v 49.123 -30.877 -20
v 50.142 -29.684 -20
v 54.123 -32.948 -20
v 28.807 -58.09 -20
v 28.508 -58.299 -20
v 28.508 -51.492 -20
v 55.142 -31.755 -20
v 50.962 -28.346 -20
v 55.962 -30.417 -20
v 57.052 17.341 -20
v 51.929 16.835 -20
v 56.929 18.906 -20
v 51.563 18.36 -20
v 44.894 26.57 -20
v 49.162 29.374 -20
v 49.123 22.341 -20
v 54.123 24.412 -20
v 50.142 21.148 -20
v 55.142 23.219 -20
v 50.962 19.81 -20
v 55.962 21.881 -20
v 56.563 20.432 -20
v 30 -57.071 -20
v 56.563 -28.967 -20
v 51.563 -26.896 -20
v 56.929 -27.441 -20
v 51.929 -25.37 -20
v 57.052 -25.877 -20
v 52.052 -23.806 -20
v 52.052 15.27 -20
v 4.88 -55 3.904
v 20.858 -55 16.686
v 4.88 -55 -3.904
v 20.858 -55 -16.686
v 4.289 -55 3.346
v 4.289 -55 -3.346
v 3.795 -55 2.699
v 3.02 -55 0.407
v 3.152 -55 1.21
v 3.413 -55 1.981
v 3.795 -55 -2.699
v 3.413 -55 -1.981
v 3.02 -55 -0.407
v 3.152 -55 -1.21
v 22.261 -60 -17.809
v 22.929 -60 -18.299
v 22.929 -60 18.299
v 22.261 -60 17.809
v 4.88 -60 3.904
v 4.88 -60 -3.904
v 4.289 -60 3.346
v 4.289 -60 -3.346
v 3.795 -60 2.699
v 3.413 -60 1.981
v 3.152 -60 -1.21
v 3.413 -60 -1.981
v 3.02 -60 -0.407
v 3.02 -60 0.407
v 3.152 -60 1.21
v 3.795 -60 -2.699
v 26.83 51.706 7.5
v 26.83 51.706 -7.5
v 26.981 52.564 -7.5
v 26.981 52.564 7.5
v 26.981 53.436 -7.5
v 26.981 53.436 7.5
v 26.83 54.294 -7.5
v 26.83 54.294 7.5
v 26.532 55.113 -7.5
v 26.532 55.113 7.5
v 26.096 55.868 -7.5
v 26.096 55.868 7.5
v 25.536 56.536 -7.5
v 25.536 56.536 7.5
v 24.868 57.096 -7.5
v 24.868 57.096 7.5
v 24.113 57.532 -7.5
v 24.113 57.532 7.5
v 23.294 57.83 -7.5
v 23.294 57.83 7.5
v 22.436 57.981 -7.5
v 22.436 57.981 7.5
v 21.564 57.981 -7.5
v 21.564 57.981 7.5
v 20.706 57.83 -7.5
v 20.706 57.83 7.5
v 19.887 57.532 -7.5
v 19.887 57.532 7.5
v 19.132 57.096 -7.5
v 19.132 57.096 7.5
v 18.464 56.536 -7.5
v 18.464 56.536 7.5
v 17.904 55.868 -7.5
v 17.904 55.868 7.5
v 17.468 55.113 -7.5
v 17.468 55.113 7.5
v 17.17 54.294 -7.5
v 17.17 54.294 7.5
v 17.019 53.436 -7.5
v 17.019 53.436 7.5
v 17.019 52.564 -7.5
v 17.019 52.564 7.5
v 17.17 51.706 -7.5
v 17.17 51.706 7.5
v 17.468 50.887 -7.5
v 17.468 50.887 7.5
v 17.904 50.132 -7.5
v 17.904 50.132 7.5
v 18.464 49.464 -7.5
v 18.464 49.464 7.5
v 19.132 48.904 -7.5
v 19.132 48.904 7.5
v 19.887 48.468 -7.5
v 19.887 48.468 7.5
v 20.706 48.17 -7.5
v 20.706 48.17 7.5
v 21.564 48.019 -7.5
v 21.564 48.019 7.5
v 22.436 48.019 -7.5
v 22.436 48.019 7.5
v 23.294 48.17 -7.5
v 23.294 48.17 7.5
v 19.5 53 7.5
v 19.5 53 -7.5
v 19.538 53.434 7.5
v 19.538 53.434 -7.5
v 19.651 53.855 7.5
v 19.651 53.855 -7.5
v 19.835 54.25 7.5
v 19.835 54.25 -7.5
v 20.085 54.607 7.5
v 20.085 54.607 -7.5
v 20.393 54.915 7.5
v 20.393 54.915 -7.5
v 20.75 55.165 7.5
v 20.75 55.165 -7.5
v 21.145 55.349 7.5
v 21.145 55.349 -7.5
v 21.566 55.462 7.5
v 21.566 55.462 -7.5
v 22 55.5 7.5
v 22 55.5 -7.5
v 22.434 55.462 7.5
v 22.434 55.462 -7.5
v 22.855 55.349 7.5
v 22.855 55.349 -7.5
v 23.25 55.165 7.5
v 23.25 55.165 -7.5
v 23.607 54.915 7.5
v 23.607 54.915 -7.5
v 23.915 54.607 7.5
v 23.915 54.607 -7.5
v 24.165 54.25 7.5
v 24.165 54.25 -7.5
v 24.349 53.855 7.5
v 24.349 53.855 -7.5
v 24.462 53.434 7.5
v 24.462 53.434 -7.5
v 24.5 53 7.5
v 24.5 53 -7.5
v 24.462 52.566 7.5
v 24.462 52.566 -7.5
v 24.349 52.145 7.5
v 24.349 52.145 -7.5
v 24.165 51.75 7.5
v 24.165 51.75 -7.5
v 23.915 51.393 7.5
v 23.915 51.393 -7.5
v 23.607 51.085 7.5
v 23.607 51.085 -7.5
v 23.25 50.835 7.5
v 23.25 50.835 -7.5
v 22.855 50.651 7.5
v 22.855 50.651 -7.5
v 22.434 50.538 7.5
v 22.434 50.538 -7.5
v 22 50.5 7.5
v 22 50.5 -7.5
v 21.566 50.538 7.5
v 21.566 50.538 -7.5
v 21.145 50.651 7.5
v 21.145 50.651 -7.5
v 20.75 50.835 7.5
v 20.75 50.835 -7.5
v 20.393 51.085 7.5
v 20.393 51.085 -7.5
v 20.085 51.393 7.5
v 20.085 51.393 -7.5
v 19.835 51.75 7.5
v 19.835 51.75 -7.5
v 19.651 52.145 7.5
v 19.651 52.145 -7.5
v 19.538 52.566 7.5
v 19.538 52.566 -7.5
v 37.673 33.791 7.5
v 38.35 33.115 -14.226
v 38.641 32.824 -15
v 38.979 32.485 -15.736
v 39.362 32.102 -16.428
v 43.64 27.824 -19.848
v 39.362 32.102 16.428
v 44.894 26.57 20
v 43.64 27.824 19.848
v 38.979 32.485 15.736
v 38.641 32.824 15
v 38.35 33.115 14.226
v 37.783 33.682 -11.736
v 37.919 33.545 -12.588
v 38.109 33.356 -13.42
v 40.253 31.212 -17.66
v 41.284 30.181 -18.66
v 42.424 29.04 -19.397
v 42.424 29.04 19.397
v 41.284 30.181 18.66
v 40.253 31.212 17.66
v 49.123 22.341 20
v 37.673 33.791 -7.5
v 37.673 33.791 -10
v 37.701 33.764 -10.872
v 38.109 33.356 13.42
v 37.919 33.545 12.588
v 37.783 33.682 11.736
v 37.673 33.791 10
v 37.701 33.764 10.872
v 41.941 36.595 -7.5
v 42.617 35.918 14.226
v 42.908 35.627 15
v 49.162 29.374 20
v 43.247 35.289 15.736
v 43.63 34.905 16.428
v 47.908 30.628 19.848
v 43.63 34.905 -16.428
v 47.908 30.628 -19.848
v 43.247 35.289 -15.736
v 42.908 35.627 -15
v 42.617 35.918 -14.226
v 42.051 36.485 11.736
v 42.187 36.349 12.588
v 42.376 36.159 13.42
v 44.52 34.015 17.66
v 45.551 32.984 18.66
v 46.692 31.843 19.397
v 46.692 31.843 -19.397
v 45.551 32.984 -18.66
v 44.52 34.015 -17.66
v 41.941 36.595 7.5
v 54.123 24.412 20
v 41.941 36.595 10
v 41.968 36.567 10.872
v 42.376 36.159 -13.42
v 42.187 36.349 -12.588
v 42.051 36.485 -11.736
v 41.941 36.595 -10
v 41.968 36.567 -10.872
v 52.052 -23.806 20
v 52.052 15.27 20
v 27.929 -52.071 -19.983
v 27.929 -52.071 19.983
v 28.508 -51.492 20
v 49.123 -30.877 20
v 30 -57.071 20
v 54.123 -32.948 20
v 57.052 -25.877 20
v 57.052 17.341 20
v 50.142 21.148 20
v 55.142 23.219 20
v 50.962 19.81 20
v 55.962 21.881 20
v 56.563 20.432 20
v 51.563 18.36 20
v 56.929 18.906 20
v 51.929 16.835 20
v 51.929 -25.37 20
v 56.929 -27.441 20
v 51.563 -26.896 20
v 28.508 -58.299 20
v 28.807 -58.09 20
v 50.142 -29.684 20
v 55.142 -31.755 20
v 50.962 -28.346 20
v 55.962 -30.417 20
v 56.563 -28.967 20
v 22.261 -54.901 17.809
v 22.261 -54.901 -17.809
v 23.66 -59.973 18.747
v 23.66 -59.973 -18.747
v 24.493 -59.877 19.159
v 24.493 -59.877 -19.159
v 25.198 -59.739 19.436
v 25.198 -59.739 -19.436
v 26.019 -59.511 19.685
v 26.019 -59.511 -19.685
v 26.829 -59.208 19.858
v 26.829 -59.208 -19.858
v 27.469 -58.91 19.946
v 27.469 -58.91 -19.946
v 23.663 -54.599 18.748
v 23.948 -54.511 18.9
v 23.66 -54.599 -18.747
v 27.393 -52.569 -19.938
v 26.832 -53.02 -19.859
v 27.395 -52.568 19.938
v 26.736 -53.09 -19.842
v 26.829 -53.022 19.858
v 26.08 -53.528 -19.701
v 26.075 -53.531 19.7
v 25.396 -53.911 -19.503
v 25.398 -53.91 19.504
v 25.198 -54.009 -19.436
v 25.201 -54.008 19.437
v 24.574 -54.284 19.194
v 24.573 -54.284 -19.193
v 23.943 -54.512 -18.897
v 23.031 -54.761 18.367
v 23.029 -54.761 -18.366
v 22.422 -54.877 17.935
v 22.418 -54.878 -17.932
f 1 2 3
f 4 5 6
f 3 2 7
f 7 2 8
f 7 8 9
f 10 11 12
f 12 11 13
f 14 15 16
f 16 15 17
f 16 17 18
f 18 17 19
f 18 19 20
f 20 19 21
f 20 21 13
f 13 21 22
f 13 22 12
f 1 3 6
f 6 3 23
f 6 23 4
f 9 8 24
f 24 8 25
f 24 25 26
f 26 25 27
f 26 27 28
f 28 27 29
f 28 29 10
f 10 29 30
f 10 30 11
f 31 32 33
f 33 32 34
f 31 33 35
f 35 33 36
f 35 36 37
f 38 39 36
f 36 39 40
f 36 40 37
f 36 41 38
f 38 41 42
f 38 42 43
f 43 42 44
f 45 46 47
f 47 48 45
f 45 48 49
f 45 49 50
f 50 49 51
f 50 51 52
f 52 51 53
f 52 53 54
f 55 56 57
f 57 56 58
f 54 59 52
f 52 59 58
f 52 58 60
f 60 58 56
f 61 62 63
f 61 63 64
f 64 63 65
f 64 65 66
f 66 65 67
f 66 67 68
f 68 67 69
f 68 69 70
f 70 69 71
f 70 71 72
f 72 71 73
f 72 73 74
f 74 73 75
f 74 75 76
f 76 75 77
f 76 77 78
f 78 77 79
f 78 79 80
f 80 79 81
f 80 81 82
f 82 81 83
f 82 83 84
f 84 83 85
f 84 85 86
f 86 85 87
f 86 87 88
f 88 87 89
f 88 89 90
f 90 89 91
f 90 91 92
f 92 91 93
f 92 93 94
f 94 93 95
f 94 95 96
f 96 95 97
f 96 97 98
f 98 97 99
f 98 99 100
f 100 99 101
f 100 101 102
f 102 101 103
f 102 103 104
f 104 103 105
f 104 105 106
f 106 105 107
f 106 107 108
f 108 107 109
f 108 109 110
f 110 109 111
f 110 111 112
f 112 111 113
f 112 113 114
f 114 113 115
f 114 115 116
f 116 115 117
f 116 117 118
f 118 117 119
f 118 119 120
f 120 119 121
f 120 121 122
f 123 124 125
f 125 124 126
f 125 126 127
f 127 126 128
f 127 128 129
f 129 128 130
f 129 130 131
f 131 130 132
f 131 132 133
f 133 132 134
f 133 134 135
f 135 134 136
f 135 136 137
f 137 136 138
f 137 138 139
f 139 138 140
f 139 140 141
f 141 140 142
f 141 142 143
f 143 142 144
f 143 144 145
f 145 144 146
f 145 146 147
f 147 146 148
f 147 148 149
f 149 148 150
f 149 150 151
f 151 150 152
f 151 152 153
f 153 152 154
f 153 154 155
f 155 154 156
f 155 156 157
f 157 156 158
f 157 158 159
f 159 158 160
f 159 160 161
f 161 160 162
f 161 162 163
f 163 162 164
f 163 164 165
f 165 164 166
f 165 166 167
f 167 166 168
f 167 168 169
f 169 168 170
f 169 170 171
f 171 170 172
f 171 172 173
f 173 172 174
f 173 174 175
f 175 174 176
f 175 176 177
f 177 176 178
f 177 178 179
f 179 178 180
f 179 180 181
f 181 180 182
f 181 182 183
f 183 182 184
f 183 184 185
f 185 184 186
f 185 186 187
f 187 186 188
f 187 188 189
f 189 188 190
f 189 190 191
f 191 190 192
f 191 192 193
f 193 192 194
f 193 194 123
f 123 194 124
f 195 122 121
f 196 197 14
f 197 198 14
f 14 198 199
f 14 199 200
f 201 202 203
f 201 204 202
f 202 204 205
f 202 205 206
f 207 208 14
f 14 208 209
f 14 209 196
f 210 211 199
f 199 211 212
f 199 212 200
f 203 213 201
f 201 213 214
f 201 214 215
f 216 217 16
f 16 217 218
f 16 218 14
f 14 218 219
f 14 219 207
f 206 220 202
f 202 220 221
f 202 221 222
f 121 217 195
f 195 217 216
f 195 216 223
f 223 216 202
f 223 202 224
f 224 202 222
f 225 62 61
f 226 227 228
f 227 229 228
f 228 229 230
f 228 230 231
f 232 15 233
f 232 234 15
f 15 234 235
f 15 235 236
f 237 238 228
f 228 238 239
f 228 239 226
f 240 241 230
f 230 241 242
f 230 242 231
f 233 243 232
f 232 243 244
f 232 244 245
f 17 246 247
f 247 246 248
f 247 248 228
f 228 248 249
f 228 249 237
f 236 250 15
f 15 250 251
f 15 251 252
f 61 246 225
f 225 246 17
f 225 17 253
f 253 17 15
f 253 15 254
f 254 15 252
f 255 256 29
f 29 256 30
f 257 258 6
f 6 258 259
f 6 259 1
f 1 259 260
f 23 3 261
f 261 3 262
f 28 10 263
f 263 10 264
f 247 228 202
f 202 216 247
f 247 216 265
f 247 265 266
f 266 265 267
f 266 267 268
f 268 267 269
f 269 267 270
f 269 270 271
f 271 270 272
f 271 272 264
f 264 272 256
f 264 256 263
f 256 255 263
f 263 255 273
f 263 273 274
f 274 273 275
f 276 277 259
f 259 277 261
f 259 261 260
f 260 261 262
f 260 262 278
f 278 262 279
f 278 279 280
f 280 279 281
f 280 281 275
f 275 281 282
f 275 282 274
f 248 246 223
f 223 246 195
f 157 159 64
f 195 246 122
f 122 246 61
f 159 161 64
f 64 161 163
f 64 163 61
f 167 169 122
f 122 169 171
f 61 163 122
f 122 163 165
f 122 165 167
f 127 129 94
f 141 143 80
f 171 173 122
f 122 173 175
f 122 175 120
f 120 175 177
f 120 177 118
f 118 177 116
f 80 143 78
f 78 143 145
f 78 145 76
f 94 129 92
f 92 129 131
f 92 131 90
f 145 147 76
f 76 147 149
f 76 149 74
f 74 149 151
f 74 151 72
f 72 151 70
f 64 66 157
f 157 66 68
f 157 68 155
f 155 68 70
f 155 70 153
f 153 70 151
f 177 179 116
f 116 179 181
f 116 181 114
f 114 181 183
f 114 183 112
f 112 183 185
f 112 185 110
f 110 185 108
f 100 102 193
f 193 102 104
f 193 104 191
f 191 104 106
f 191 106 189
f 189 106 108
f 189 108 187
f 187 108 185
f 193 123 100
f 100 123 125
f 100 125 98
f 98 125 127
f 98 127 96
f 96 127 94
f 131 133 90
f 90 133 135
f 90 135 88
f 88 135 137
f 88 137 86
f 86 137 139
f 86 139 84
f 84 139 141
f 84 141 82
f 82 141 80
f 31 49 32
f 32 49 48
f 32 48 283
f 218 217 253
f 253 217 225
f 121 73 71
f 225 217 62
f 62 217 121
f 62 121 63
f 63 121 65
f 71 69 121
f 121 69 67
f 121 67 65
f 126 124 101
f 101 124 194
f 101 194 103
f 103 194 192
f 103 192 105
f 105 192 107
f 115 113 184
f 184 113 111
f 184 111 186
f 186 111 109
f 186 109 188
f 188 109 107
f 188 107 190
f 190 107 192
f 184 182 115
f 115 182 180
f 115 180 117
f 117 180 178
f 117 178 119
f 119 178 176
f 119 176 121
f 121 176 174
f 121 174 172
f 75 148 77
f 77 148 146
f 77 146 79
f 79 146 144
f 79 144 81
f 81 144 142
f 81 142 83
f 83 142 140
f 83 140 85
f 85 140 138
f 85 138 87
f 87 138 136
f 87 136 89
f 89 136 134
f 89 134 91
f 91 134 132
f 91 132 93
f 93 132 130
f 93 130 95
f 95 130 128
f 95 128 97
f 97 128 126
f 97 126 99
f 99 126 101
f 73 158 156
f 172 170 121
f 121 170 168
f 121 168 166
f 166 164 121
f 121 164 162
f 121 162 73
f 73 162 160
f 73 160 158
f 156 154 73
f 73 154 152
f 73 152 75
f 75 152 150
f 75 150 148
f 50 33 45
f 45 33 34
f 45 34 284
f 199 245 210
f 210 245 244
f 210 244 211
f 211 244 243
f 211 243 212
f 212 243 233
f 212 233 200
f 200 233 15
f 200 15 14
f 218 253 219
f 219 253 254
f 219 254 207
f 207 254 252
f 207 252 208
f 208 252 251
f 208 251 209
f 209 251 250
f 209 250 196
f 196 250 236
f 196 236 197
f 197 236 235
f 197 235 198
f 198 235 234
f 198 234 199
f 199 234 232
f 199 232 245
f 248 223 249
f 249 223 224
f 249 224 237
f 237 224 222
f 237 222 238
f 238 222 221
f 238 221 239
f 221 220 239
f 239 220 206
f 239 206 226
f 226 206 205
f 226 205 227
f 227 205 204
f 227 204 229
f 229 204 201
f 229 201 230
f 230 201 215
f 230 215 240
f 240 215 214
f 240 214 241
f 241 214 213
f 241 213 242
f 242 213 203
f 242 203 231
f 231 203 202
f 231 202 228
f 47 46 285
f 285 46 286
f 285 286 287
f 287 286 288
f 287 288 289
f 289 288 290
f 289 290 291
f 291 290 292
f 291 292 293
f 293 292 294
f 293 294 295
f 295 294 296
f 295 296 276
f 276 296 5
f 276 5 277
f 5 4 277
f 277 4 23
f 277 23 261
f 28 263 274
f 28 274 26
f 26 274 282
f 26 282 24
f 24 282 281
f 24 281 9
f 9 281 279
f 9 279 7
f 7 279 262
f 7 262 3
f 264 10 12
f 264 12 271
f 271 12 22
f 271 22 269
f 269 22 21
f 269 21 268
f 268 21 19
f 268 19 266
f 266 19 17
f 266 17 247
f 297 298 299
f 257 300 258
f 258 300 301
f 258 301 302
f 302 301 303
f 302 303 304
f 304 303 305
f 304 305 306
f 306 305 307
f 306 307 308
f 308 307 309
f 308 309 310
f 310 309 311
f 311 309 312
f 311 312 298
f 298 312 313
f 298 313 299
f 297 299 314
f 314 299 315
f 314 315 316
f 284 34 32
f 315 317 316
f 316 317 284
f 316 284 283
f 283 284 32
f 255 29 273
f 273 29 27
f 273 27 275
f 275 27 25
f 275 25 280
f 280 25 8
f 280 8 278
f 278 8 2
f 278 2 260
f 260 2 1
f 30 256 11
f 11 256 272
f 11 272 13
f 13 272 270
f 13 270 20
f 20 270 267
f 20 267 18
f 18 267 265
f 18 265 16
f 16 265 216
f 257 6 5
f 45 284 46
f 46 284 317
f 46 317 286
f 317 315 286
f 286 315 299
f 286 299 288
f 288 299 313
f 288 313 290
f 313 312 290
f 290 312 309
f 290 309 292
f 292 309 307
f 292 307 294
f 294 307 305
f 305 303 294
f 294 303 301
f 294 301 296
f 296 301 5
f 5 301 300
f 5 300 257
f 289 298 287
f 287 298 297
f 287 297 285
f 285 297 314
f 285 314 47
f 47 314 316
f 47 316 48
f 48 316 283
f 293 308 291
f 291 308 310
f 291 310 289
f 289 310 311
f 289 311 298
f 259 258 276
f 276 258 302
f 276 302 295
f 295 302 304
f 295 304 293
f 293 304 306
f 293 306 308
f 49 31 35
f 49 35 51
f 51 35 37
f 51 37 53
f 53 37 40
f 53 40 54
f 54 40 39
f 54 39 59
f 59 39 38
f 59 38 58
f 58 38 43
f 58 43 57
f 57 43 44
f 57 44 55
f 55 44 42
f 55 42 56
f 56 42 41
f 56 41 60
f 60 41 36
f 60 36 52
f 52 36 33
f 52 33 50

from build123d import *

# Parameters (mm, degrees)
SKETCH1_R           = 2.5
BOSS_EXTRUDE1_DEPTH = 20
SKETCH2_R           = 2.5
CUT_EXTRUDE1_DEPTH  = 12.5
CUT_EXTRUDE2_DEPTH  = 5
FILLET5_R           = 10
FILLET6_R           = 10
FILLET7_R           = 10
FILLET8_R           = 10
FILLET9_R           = 5


with BuildPart() as part:
    # Sketch1 → Boss-Extrude1 (new body)
    with BuildSketch(Plane.XY):
        with BuildLine():
            ThreePointArc((26.829629131, 51.705904774), (18.464466094, 56.535533906), (23.294095226, 48.170370869))
            Line((23.294095226, 48.170370869), (52.0520382, 19.412427894))
            Line((52.0520382, 19.412427894), (52.0520382, -27.9479618))
            Line((52.0520382, -27.9479618), (25, -55))
            Line((25, -55), (0, -55))
            Line((0, -55), (0, -60))
            Line((0, -60), (27.071067812, -60))
            Line((27.071067812, -60), (57.0520382, -30.019029611))
            Line((57.0520382, -30.019029611), (57.0520382, 21.483495706))
            Line((57.0520382, 21.483495706), (26.829629131, 51.705904774))
        make_face()
        with Locations((22, 53)):
            Circle(SKETCH1_R, mode=Mode.SUBTRACT)
    boss_extrude1 = extrude(amount=BOSS_EXTRUDE1_DEPTH)

    # Sketch2 → Cut-Extrude1 (cut)
    with BuildSketch(Plane.XY.offset(20)):
        with BuildLine():
            ThreePointArc((23.294095226, 48.170370869), (25.535533906, 49.464466094), (26.829629131, 51.705904774))
            ThreePointArc((26.829629131, 51.705904774), (26.957224307, 52.347369039), (27, 53))
            ThreePointArc((27, 53), (18.033233299, 56.043807145), (23.294095226, 48.170370869))
        make_face()
        with Locations((22, 53)):
            Circle(SKETCH2_R, mode=Mode.SUBTRACT)
        with BuildLine():
            Line((41.940833666, 36.59470024), (26.829629131, 51.705904774))
            ThreePointArc((26.829629131, 51.705904774), (25.535533906, 49.464466094), (23.294095226, 48.170370869))
            Line((23.294095226, 48.170370869), (37.673066713, 33.791399381))
            Line((37.673066713, 33.791399381), (41.940833666, 36.59470024))
        make_face()
    cut_extrude1 = extrude(amount=-CUT_EXTRUDE1_DEPTH, mode=Mode.SUBTRACT)

    # Sketch3 → Cut-Extrude2 (cut)
    with BuildSketch(Plane(origin=(0, -55, 0), x_dir=(1, 0, 0), z_dir=(0, 1, 0))):
        Polygon((25, -20), (0, 0), (0, -20), align=None)
    cut_extrude2 = extrude(amount=-CUT_EXTRUDE2_DEPTH, mode=Mode.SUBTRACT)

    # Mirror2: Boss-Extrude1, Cut-Extrude1, Cut-Extrude2 across plane
    add(boss_extrude1.mirror(Plane.XY))
    add(cut_extrude1.mirror(Plane.XY), mode=Mode.SUBTRACT)
    add(cut_extrude2.mirror(Plane.XY), mode=Mode.SUBTRACT)

    # Fillet5
    fillet5_edges = [part.edges().sort_by_distance(p)[0] for p in [
        (39.806950189, 35.193049811, -20),
        (39.806950189, 35.193049811, 20),
    ]]
    fillet(fillet5_edges, radius=FILLET5_R)

    # Fillet6
    fillet6_edges = [part.edges().sort_by_distance(p)[0] for p in [
        (27.071067812, -60, 0),
        (57.0520382, -30.019029611, 0),
        (57.0520382, 21.483495706, 0),
    ]]
    fillet(fillet6_edges, radius=FILLET6_R)

    # Fillet7
    fillet7_edges = [part.edges().sort_by_distance(p)[0] for p in [
        (25, -55, 0),
        (52.0520382, -27.9479618, 0),
        (52.0520382, 19.412427894, 0),
    ]]
    fillet(fillet7_edges, radius=FILLET7_R)

    # Fillet8
    fillet8_edges = [part.edges().sort_by_distance(p)[0] for p in [
        (25, -56.942490323, -20),
        (25, -56.942490323, 20),
    ]]
    fillet(fillet8_edges, radius=FILLET8_R)

    # Fillet9
    fillet9_edges = [part.edges().sort_by_distance(p)[0] for p in [
        (0, -57.5, 0),
    ]]
    fillet(fillet9_edges, radius=FILLET9_R)


solid = part.part
